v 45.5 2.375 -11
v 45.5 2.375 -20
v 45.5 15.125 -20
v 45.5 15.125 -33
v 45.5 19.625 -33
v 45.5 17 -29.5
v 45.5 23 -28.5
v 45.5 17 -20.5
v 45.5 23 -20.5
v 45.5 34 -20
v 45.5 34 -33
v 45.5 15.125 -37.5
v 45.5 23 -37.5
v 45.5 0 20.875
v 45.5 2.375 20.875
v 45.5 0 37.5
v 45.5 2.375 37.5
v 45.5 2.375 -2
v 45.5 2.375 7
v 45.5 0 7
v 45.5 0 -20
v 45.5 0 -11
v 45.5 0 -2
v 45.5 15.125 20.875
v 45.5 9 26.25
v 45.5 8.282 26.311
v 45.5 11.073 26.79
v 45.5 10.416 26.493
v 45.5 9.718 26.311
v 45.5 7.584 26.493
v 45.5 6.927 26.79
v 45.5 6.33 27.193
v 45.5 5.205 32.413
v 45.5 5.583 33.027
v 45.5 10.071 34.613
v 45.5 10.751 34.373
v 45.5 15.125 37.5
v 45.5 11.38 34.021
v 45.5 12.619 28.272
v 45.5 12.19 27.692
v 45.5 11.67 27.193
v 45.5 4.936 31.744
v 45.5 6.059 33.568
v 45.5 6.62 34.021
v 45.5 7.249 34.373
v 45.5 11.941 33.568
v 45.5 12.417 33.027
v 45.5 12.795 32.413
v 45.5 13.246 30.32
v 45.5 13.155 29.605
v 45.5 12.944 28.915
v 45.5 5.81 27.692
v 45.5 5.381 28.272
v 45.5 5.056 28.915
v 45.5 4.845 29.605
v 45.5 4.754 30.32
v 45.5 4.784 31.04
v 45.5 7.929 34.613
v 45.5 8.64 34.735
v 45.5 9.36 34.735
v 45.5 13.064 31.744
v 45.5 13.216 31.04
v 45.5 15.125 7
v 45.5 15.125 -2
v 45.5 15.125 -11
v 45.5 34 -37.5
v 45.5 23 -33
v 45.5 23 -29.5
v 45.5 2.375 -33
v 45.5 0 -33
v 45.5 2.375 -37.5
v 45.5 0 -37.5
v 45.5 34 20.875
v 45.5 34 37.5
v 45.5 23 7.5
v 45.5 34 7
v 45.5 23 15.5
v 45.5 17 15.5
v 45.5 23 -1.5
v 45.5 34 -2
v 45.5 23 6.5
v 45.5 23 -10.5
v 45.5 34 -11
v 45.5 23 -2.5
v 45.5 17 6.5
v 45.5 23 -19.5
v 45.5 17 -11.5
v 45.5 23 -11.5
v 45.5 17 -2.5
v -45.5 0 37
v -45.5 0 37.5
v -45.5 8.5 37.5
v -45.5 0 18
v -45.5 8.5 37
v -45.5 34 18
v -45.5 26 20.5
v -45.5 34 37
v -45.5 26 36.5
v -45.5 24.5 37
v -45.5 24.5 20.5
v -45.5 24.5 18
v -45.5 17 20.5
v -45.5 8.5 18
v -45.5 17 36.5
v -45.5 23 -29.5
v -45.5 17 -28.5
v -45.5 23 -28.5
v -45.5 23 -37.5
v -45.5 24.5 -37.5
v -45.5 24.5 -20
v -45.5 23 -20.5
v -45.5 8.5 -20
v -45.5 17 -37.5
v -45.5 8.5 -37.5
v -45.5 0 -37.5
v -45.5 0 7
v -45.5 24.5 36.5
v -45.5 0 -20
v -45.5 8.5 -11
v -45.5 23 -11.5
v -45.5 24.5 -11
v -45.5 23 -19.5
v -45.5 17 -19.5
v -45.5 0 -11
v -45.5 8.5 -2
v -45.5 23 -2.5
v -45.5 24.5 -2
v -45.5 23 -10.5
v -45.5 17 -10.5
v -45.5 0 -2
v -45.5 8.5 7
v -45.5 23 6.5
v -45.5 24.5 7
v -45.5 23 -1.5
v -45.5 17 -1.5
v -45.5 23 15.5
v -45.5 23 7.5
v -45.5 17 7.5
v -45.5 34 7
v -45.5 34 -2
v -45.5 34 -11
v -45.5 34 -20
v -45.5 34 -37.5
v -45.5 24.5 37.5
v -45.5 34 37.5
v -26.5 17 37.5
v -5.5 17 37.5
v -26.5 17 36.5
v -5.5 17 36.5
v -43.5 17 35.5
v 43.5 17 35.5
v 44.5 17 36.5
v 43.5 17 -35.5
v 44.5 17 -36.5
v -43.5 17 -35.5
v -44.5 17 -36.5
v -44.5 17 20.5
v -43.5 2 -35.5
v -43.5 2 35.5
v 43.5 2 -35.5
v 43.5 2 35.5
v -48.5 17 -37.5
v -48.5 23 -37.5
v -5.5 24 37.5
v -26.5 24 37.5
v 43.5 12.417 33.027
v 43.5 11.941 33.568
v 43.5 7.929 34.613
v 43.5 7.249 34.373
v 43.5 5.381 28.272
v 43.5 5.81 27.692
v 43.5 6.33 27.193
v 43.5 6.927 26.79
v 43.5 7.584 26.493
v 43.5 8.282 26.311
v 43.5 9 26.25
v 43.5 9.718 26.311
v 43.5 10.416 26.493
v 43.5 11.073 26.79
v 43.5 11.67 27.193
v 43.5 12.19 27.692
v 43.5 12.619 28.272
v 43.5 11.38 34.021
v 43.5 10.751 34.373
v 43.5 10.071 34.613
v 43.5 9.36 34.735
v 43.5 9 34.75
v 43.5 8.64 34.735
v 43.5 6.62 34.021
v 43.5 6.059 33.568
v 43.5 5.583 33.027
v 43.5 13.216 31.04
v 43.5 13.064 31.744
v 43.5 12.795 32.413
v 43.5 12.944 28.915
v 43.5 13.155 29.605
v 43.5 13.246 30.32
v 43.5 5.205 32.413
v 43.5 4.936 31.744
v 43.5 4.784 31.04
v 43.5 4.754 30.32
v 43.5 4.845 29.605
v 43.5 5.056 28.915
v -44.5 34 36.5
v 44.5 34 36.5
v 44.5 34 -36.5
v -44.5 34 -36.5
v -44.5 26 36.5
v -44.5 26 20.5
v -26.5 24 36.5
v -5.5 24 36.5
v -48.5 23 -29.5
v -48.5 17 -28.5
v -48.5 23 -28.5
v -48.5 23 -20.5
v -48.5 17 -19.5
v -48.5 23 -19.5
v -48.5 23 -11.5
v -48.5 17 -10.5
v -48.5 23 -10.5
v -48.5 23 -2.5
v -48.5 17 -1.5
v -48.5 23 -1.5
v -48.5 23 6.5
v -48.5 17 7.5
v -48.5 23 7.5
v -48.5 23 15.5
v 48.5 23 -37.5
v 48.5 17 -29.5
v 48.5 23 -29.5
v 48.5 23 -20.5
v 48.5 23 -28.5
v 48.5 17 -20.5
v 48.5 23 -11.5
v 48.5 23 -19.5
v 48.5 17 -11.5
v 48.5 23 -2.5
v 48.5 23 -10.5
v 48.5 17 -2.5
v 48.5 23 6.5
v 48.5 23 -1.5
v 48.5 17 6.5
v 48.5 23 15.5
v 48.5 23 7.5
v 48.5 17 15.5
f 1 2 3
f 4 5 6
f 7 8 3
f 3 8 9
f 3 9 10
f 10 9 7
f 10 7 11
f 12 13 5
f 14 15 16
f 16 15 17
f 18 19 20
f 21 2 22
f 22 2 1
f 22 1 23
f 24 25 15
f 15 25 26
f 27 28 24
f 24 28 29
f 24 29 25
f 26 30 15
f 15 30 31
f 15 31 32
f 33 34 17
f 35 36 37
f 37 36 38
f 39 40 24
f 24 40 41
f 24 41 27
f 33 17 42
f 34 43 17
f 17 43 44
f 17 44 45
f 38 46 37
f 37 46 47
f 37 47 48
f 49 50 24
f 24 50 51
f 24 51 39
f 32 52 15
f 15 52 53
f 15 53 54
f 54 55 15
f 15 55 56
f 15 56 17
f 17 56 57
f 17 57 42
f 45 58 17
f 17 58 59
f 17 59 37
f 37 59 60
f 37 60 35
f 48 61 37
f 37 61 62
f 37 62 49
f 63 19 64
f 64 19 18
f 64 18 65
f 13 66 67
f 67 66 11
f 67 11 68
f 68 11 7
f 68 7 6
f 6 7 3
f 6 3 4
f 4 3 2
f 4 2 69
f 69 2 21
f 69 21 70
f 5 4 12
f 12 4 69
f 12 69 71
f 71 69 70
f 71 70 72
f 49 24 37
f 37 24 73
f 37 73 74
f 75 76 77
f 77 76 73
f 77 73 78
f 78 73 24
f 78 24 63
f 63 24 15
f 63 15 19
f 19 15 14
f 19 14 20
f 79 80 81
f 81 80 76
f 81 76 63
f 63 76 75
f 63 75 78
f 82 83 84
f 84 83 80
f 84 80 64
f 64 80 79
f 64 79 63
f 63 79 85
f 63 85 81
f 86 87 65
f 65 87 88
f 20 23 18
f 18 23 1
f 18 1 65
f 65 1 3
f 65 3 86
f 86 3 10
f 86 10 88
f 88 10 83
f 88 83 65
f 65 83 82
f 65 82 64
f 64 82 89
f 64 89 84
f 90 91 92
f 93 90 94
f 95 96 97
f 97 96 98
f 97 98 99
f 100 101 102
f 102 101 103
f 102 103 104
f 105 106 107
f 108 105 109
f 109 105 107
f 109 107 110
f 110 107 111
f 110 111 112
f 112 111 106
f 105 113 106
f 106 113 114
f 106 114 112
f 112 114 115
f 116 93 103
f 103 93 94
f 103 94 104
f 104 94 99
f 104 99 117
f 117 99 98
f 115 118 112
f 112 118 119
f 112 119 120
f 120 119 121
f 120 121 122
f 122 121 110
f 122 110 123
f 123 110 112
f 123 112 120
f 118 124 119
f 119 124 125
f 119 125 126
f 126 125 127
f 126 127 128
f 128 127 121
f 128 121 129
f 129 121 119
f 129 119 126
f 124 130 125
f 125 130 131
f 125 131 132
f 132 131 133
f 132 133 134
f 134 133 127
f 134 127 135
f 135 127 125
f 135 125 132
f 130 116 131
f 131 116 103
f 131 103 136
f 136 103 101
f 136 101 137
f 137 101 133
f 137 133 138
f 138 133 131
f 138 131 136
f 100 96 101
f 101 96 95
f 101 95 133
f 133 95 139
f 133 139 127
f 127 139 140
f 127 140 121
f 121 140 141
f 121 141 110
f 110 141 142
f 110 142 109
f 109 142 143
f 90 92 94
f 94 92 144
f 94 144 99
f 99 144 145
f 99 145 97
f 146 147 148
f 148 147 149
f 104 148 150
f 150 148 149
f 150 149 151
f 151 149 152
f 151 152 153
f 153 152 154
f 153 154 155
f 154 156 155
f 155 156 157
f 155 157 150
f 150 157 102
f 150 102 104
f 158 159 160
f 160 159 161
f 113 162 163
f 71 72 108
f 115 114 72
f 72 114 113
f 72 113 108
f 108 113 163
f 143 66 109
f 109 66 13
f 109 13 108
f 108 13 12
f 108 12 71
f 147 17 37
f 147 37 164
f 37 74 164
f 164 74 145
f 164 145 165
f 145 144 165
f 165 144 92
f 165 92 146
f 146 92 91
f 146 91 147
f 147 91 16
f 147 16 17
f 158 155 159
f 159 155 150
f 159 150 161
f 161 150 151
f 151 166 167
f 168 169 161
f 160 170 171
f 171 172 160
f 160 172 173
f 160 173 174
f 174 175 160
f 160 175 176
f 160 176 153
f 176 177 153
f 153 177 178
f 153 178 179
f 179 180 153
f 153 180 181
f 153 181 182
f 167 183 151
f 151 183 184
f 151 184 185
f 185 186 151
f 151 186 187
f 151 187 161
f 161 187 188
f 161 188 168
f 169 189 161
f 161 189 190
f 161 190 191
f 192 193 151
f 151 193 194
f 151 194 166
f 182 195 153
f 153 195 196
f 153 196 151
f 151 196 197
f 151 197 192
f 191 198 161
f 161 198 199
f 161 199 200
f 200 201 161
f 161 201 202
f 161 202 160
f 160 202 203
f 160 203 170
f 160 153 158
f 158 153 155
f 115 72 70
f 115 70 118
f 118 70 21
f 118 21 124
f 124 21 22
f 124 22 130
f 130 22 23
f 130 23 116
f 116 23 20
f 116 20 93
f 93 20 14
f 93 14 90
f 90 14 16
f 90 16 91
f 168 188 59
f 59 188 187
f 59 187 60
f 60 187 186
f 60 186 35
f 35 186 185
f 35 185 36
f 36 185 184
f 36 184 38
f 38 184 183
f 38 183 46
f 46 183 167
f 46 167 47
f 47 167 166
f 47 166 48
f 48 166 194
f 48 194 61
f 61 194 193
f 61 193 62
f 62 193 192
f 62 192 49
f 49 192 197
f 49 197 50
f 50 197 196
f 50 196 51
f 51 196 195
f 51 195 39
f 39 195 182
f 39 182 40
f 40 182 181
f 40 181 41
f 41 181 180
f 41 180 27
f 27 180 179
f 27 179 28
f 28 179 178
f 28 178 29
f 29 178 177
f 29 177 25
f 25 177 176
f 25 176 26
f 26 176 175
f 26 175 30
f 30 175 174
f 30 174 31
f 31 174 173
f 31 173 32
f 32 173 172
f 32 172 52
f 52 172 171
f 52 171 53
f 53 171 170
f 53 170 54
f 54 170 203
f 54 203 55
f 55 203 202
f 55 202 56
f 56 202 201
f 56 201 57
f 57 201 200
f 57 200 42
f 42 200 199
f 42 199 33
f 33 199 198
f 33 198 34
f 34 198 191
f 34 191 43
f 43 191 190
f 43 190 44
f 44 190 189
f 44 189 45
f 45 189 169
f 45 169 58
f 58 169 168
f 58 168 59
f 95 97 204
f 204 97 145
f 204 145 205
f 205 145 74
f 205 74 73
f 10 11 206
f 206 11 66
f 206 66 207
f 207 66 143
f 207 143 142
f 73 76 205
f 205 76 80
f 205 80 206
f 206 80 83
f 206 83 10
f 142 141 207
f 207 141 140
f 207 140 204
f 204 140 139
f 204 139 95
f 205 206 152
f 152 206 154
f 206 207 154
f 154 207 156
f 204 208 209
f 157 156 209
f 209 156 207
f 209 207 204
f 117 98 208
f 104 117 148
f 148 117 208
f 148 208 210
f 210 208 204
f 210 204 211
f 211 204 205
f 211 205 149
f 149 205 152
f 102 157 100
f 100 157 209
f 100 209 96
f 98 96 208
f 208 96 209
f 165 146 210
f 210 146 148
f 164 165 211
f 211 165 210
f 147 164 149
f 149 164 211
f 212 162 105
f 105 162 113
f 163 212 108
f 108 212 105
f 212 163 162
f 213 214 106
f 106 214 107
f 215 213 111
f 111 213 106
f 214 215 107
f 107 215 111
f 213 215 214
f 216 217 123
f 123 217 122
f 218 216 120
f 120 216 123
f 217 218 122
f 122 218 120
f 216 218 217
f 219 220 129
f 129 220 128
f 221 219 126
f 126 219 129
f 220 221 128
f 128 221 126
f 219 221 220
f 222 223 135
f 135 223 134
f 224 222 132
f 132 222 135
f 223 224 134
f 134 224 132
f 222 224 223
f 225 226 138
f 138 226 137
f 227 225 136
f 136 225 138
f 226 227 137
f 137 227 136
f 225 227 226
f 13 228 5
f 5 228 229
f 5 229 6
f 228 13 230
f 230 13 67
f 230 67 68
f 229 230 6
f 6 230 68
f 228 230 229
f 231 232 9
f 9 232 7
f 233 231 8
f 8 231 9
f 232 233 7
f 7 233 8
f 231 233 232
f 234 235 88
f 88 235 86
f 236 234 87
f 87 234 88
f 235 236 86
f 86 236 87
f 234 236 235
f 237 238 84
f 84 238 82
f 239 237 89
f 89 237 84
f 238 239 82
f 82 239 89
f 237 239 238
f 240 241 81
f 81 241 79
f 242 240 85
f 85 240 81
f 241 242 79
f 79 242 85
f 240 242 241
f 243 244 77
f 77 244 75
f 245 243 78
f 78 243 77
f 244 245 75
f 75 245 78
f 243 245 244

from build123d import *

# Parameters (mm, degrees)
SKETCH_1_W          = 87
SKETCH_1_H          = 71
EXTRUDE_1_DEPTH     = 2
SKETCH_2_W          = 91
SKETCH_2_H          = 75
SKETCH_2_W_2        = 87
SKETCH_2_H_2        = 71
EXTRUDE_2_DEPTH     = 17
SKETCH_3_R          = 4.25
CUT_EXTRUDE_2_DEPTH = 17
SKETCH_4_W          = 91
SKETCH_4_H          = 75
SKETCH_4_W_2        = 89
SKETCH_4_H_2        = 73
EXTRUDE_3_DEPTH     = 17
SKETCH_6_W          = 16
SKETCH_6_H          = 9
CUT_EXTRUDE_3_DEPTH = 17
SKETCH_7_W          = 21
SKETCH_7_H          = 7
CUT_EXTRUDE_4_DEPTH = 17
EXTRUDE_4_DEPTH     = 3
EXTRUDE_5_DEPTH     = 3


with BuildPart() as part:
    # 草图1 → 凸台-拉伸1 (new body)
    with BuildSketch(Plane(origin=(0, 0, 0), x_dir=(1, 0, 0), z_dir=(0, 1, 0))):
        Rectangle(SKETCH_1_W, SKETCH_1_H)
    extrude(amount=EXTRUDE_1_DEPTH)

    # 草图2 → 凸台-拉伸2 (add)
    with BuildSketch(Plane(origin=(0, 0, 0), x_dir=(1, 0, 0), z_dir=(0, 1, 0))):
        Rectangle(SKETCH_2_W, SKETCH_2_H)
        Rectangle(SKETCH_2_W_2, SKETCH_2_H_2, mode=Mode.SUBTRACT)
    extrude(amount=EXTRUDE_2_DEPTH)

    # 草图3 → 切除-拉伸2 (cut)
    with BuildSketch(Plane(origin=(45.5, 0, 0), x_dir=(0, 0, -1), z_dir=(1, 0, 0))):
        with Locations((-30.5, 9)):
            Circle(SKETCH_3_R)
    extrude(amount=-CUT_EXTRUDE_2_DEPTH, mode=Mode.SUBTRACT)

    # 草图4 → 凸台-拉伸3 (add)
    with BuildSketch(Plane(origin=(0, 17, 0), x_dir=(1, 0, 0), z_dir=(0, 1, 0))):
        Rectangle(SKETCH_4_W, SKETCH_4_H)
        Rectangle(SKETCH_4_W_2, SKETCH_4_H_2, mode=Mode.SUBTRACT)
    extrude(amount=EXTRUDE_3_DEPTH)

    # 草图6 → 切除-拉伸3 (cut)
    with BuildSketch(Plane.ZY.offset(45.5)):
        with Locations((28.5, 21.5)):
            Rectangle(SKETCH_6_W, SKETCH_6_H)
    extrude(amount=-CUT_EXTRUDE_3_DEPTH, mode=Mode.SUBTRACT)

    # 草图7 → 切除-拉伸4 (cut)
    with BuildSketch(Plane.XY.offset(37.5)):
        with Locations((-16, 20.5)):
            Rectangle(SKETCH_7_W, SKETCH_7_H)
    extrude(amount=-CUT_EXTRUDE_4_DEPTH, mode=Mode.SUBTRACT)

    # 草图8 → 凸台-拉伸4 (add)
    with BuildSketch(Plane.ZY.offset(45.5)):
        Polygon((-37.5, 17), (-37.5, 23), (-29.5, 23), align=None)
        Polygon((-20.5, 23), (-28.5, 17), (-28.5, 23), align=None)
        Polygon((-11.5, 23), (-19.5, 17), (-19.5, 23), align=None)
        Polygon((-2.5, 23), (-10.5, 17), (-10.5, 23), align=None)
        Polygon((6.5, 23), (-1.5, 17), (-1.5, 23), align=None)
        Polygon((15.5, 23), (7.5, 17), (7.5, 23), align=None)
    extrude(amount=EXTRUDE_4_DEPTH)

    # 草图9 → 凸台-拉伸5 (add)
    with BuildSketch(Plane(origin=(45.5, 0, 0), x_dir=(0, 0, -1), z_dir=(1, 0, 0))):
        Polygon((37.5, 23), (29.5, 23), (29.5, 17), align=None)
        Polygon((20.5, 17), (28.5, 23), (20.5, 23), align=None)
        Polygon((11.5, 17), (19.5, 23), (11.5, 23), align=None)
        Polygon((2.5, 17), (10.5, 23), (2.5, 23), align=None)
        Polygon((-6.5, 17), (1.5, 23), (-6.5, 23), align=None)
        Polygon((-15.5, 17), (-7.5, 23), (-15.5, 23), align=None)
    extrude(amount=EXTRUDE_5_DEPTH)


solid = part.part
